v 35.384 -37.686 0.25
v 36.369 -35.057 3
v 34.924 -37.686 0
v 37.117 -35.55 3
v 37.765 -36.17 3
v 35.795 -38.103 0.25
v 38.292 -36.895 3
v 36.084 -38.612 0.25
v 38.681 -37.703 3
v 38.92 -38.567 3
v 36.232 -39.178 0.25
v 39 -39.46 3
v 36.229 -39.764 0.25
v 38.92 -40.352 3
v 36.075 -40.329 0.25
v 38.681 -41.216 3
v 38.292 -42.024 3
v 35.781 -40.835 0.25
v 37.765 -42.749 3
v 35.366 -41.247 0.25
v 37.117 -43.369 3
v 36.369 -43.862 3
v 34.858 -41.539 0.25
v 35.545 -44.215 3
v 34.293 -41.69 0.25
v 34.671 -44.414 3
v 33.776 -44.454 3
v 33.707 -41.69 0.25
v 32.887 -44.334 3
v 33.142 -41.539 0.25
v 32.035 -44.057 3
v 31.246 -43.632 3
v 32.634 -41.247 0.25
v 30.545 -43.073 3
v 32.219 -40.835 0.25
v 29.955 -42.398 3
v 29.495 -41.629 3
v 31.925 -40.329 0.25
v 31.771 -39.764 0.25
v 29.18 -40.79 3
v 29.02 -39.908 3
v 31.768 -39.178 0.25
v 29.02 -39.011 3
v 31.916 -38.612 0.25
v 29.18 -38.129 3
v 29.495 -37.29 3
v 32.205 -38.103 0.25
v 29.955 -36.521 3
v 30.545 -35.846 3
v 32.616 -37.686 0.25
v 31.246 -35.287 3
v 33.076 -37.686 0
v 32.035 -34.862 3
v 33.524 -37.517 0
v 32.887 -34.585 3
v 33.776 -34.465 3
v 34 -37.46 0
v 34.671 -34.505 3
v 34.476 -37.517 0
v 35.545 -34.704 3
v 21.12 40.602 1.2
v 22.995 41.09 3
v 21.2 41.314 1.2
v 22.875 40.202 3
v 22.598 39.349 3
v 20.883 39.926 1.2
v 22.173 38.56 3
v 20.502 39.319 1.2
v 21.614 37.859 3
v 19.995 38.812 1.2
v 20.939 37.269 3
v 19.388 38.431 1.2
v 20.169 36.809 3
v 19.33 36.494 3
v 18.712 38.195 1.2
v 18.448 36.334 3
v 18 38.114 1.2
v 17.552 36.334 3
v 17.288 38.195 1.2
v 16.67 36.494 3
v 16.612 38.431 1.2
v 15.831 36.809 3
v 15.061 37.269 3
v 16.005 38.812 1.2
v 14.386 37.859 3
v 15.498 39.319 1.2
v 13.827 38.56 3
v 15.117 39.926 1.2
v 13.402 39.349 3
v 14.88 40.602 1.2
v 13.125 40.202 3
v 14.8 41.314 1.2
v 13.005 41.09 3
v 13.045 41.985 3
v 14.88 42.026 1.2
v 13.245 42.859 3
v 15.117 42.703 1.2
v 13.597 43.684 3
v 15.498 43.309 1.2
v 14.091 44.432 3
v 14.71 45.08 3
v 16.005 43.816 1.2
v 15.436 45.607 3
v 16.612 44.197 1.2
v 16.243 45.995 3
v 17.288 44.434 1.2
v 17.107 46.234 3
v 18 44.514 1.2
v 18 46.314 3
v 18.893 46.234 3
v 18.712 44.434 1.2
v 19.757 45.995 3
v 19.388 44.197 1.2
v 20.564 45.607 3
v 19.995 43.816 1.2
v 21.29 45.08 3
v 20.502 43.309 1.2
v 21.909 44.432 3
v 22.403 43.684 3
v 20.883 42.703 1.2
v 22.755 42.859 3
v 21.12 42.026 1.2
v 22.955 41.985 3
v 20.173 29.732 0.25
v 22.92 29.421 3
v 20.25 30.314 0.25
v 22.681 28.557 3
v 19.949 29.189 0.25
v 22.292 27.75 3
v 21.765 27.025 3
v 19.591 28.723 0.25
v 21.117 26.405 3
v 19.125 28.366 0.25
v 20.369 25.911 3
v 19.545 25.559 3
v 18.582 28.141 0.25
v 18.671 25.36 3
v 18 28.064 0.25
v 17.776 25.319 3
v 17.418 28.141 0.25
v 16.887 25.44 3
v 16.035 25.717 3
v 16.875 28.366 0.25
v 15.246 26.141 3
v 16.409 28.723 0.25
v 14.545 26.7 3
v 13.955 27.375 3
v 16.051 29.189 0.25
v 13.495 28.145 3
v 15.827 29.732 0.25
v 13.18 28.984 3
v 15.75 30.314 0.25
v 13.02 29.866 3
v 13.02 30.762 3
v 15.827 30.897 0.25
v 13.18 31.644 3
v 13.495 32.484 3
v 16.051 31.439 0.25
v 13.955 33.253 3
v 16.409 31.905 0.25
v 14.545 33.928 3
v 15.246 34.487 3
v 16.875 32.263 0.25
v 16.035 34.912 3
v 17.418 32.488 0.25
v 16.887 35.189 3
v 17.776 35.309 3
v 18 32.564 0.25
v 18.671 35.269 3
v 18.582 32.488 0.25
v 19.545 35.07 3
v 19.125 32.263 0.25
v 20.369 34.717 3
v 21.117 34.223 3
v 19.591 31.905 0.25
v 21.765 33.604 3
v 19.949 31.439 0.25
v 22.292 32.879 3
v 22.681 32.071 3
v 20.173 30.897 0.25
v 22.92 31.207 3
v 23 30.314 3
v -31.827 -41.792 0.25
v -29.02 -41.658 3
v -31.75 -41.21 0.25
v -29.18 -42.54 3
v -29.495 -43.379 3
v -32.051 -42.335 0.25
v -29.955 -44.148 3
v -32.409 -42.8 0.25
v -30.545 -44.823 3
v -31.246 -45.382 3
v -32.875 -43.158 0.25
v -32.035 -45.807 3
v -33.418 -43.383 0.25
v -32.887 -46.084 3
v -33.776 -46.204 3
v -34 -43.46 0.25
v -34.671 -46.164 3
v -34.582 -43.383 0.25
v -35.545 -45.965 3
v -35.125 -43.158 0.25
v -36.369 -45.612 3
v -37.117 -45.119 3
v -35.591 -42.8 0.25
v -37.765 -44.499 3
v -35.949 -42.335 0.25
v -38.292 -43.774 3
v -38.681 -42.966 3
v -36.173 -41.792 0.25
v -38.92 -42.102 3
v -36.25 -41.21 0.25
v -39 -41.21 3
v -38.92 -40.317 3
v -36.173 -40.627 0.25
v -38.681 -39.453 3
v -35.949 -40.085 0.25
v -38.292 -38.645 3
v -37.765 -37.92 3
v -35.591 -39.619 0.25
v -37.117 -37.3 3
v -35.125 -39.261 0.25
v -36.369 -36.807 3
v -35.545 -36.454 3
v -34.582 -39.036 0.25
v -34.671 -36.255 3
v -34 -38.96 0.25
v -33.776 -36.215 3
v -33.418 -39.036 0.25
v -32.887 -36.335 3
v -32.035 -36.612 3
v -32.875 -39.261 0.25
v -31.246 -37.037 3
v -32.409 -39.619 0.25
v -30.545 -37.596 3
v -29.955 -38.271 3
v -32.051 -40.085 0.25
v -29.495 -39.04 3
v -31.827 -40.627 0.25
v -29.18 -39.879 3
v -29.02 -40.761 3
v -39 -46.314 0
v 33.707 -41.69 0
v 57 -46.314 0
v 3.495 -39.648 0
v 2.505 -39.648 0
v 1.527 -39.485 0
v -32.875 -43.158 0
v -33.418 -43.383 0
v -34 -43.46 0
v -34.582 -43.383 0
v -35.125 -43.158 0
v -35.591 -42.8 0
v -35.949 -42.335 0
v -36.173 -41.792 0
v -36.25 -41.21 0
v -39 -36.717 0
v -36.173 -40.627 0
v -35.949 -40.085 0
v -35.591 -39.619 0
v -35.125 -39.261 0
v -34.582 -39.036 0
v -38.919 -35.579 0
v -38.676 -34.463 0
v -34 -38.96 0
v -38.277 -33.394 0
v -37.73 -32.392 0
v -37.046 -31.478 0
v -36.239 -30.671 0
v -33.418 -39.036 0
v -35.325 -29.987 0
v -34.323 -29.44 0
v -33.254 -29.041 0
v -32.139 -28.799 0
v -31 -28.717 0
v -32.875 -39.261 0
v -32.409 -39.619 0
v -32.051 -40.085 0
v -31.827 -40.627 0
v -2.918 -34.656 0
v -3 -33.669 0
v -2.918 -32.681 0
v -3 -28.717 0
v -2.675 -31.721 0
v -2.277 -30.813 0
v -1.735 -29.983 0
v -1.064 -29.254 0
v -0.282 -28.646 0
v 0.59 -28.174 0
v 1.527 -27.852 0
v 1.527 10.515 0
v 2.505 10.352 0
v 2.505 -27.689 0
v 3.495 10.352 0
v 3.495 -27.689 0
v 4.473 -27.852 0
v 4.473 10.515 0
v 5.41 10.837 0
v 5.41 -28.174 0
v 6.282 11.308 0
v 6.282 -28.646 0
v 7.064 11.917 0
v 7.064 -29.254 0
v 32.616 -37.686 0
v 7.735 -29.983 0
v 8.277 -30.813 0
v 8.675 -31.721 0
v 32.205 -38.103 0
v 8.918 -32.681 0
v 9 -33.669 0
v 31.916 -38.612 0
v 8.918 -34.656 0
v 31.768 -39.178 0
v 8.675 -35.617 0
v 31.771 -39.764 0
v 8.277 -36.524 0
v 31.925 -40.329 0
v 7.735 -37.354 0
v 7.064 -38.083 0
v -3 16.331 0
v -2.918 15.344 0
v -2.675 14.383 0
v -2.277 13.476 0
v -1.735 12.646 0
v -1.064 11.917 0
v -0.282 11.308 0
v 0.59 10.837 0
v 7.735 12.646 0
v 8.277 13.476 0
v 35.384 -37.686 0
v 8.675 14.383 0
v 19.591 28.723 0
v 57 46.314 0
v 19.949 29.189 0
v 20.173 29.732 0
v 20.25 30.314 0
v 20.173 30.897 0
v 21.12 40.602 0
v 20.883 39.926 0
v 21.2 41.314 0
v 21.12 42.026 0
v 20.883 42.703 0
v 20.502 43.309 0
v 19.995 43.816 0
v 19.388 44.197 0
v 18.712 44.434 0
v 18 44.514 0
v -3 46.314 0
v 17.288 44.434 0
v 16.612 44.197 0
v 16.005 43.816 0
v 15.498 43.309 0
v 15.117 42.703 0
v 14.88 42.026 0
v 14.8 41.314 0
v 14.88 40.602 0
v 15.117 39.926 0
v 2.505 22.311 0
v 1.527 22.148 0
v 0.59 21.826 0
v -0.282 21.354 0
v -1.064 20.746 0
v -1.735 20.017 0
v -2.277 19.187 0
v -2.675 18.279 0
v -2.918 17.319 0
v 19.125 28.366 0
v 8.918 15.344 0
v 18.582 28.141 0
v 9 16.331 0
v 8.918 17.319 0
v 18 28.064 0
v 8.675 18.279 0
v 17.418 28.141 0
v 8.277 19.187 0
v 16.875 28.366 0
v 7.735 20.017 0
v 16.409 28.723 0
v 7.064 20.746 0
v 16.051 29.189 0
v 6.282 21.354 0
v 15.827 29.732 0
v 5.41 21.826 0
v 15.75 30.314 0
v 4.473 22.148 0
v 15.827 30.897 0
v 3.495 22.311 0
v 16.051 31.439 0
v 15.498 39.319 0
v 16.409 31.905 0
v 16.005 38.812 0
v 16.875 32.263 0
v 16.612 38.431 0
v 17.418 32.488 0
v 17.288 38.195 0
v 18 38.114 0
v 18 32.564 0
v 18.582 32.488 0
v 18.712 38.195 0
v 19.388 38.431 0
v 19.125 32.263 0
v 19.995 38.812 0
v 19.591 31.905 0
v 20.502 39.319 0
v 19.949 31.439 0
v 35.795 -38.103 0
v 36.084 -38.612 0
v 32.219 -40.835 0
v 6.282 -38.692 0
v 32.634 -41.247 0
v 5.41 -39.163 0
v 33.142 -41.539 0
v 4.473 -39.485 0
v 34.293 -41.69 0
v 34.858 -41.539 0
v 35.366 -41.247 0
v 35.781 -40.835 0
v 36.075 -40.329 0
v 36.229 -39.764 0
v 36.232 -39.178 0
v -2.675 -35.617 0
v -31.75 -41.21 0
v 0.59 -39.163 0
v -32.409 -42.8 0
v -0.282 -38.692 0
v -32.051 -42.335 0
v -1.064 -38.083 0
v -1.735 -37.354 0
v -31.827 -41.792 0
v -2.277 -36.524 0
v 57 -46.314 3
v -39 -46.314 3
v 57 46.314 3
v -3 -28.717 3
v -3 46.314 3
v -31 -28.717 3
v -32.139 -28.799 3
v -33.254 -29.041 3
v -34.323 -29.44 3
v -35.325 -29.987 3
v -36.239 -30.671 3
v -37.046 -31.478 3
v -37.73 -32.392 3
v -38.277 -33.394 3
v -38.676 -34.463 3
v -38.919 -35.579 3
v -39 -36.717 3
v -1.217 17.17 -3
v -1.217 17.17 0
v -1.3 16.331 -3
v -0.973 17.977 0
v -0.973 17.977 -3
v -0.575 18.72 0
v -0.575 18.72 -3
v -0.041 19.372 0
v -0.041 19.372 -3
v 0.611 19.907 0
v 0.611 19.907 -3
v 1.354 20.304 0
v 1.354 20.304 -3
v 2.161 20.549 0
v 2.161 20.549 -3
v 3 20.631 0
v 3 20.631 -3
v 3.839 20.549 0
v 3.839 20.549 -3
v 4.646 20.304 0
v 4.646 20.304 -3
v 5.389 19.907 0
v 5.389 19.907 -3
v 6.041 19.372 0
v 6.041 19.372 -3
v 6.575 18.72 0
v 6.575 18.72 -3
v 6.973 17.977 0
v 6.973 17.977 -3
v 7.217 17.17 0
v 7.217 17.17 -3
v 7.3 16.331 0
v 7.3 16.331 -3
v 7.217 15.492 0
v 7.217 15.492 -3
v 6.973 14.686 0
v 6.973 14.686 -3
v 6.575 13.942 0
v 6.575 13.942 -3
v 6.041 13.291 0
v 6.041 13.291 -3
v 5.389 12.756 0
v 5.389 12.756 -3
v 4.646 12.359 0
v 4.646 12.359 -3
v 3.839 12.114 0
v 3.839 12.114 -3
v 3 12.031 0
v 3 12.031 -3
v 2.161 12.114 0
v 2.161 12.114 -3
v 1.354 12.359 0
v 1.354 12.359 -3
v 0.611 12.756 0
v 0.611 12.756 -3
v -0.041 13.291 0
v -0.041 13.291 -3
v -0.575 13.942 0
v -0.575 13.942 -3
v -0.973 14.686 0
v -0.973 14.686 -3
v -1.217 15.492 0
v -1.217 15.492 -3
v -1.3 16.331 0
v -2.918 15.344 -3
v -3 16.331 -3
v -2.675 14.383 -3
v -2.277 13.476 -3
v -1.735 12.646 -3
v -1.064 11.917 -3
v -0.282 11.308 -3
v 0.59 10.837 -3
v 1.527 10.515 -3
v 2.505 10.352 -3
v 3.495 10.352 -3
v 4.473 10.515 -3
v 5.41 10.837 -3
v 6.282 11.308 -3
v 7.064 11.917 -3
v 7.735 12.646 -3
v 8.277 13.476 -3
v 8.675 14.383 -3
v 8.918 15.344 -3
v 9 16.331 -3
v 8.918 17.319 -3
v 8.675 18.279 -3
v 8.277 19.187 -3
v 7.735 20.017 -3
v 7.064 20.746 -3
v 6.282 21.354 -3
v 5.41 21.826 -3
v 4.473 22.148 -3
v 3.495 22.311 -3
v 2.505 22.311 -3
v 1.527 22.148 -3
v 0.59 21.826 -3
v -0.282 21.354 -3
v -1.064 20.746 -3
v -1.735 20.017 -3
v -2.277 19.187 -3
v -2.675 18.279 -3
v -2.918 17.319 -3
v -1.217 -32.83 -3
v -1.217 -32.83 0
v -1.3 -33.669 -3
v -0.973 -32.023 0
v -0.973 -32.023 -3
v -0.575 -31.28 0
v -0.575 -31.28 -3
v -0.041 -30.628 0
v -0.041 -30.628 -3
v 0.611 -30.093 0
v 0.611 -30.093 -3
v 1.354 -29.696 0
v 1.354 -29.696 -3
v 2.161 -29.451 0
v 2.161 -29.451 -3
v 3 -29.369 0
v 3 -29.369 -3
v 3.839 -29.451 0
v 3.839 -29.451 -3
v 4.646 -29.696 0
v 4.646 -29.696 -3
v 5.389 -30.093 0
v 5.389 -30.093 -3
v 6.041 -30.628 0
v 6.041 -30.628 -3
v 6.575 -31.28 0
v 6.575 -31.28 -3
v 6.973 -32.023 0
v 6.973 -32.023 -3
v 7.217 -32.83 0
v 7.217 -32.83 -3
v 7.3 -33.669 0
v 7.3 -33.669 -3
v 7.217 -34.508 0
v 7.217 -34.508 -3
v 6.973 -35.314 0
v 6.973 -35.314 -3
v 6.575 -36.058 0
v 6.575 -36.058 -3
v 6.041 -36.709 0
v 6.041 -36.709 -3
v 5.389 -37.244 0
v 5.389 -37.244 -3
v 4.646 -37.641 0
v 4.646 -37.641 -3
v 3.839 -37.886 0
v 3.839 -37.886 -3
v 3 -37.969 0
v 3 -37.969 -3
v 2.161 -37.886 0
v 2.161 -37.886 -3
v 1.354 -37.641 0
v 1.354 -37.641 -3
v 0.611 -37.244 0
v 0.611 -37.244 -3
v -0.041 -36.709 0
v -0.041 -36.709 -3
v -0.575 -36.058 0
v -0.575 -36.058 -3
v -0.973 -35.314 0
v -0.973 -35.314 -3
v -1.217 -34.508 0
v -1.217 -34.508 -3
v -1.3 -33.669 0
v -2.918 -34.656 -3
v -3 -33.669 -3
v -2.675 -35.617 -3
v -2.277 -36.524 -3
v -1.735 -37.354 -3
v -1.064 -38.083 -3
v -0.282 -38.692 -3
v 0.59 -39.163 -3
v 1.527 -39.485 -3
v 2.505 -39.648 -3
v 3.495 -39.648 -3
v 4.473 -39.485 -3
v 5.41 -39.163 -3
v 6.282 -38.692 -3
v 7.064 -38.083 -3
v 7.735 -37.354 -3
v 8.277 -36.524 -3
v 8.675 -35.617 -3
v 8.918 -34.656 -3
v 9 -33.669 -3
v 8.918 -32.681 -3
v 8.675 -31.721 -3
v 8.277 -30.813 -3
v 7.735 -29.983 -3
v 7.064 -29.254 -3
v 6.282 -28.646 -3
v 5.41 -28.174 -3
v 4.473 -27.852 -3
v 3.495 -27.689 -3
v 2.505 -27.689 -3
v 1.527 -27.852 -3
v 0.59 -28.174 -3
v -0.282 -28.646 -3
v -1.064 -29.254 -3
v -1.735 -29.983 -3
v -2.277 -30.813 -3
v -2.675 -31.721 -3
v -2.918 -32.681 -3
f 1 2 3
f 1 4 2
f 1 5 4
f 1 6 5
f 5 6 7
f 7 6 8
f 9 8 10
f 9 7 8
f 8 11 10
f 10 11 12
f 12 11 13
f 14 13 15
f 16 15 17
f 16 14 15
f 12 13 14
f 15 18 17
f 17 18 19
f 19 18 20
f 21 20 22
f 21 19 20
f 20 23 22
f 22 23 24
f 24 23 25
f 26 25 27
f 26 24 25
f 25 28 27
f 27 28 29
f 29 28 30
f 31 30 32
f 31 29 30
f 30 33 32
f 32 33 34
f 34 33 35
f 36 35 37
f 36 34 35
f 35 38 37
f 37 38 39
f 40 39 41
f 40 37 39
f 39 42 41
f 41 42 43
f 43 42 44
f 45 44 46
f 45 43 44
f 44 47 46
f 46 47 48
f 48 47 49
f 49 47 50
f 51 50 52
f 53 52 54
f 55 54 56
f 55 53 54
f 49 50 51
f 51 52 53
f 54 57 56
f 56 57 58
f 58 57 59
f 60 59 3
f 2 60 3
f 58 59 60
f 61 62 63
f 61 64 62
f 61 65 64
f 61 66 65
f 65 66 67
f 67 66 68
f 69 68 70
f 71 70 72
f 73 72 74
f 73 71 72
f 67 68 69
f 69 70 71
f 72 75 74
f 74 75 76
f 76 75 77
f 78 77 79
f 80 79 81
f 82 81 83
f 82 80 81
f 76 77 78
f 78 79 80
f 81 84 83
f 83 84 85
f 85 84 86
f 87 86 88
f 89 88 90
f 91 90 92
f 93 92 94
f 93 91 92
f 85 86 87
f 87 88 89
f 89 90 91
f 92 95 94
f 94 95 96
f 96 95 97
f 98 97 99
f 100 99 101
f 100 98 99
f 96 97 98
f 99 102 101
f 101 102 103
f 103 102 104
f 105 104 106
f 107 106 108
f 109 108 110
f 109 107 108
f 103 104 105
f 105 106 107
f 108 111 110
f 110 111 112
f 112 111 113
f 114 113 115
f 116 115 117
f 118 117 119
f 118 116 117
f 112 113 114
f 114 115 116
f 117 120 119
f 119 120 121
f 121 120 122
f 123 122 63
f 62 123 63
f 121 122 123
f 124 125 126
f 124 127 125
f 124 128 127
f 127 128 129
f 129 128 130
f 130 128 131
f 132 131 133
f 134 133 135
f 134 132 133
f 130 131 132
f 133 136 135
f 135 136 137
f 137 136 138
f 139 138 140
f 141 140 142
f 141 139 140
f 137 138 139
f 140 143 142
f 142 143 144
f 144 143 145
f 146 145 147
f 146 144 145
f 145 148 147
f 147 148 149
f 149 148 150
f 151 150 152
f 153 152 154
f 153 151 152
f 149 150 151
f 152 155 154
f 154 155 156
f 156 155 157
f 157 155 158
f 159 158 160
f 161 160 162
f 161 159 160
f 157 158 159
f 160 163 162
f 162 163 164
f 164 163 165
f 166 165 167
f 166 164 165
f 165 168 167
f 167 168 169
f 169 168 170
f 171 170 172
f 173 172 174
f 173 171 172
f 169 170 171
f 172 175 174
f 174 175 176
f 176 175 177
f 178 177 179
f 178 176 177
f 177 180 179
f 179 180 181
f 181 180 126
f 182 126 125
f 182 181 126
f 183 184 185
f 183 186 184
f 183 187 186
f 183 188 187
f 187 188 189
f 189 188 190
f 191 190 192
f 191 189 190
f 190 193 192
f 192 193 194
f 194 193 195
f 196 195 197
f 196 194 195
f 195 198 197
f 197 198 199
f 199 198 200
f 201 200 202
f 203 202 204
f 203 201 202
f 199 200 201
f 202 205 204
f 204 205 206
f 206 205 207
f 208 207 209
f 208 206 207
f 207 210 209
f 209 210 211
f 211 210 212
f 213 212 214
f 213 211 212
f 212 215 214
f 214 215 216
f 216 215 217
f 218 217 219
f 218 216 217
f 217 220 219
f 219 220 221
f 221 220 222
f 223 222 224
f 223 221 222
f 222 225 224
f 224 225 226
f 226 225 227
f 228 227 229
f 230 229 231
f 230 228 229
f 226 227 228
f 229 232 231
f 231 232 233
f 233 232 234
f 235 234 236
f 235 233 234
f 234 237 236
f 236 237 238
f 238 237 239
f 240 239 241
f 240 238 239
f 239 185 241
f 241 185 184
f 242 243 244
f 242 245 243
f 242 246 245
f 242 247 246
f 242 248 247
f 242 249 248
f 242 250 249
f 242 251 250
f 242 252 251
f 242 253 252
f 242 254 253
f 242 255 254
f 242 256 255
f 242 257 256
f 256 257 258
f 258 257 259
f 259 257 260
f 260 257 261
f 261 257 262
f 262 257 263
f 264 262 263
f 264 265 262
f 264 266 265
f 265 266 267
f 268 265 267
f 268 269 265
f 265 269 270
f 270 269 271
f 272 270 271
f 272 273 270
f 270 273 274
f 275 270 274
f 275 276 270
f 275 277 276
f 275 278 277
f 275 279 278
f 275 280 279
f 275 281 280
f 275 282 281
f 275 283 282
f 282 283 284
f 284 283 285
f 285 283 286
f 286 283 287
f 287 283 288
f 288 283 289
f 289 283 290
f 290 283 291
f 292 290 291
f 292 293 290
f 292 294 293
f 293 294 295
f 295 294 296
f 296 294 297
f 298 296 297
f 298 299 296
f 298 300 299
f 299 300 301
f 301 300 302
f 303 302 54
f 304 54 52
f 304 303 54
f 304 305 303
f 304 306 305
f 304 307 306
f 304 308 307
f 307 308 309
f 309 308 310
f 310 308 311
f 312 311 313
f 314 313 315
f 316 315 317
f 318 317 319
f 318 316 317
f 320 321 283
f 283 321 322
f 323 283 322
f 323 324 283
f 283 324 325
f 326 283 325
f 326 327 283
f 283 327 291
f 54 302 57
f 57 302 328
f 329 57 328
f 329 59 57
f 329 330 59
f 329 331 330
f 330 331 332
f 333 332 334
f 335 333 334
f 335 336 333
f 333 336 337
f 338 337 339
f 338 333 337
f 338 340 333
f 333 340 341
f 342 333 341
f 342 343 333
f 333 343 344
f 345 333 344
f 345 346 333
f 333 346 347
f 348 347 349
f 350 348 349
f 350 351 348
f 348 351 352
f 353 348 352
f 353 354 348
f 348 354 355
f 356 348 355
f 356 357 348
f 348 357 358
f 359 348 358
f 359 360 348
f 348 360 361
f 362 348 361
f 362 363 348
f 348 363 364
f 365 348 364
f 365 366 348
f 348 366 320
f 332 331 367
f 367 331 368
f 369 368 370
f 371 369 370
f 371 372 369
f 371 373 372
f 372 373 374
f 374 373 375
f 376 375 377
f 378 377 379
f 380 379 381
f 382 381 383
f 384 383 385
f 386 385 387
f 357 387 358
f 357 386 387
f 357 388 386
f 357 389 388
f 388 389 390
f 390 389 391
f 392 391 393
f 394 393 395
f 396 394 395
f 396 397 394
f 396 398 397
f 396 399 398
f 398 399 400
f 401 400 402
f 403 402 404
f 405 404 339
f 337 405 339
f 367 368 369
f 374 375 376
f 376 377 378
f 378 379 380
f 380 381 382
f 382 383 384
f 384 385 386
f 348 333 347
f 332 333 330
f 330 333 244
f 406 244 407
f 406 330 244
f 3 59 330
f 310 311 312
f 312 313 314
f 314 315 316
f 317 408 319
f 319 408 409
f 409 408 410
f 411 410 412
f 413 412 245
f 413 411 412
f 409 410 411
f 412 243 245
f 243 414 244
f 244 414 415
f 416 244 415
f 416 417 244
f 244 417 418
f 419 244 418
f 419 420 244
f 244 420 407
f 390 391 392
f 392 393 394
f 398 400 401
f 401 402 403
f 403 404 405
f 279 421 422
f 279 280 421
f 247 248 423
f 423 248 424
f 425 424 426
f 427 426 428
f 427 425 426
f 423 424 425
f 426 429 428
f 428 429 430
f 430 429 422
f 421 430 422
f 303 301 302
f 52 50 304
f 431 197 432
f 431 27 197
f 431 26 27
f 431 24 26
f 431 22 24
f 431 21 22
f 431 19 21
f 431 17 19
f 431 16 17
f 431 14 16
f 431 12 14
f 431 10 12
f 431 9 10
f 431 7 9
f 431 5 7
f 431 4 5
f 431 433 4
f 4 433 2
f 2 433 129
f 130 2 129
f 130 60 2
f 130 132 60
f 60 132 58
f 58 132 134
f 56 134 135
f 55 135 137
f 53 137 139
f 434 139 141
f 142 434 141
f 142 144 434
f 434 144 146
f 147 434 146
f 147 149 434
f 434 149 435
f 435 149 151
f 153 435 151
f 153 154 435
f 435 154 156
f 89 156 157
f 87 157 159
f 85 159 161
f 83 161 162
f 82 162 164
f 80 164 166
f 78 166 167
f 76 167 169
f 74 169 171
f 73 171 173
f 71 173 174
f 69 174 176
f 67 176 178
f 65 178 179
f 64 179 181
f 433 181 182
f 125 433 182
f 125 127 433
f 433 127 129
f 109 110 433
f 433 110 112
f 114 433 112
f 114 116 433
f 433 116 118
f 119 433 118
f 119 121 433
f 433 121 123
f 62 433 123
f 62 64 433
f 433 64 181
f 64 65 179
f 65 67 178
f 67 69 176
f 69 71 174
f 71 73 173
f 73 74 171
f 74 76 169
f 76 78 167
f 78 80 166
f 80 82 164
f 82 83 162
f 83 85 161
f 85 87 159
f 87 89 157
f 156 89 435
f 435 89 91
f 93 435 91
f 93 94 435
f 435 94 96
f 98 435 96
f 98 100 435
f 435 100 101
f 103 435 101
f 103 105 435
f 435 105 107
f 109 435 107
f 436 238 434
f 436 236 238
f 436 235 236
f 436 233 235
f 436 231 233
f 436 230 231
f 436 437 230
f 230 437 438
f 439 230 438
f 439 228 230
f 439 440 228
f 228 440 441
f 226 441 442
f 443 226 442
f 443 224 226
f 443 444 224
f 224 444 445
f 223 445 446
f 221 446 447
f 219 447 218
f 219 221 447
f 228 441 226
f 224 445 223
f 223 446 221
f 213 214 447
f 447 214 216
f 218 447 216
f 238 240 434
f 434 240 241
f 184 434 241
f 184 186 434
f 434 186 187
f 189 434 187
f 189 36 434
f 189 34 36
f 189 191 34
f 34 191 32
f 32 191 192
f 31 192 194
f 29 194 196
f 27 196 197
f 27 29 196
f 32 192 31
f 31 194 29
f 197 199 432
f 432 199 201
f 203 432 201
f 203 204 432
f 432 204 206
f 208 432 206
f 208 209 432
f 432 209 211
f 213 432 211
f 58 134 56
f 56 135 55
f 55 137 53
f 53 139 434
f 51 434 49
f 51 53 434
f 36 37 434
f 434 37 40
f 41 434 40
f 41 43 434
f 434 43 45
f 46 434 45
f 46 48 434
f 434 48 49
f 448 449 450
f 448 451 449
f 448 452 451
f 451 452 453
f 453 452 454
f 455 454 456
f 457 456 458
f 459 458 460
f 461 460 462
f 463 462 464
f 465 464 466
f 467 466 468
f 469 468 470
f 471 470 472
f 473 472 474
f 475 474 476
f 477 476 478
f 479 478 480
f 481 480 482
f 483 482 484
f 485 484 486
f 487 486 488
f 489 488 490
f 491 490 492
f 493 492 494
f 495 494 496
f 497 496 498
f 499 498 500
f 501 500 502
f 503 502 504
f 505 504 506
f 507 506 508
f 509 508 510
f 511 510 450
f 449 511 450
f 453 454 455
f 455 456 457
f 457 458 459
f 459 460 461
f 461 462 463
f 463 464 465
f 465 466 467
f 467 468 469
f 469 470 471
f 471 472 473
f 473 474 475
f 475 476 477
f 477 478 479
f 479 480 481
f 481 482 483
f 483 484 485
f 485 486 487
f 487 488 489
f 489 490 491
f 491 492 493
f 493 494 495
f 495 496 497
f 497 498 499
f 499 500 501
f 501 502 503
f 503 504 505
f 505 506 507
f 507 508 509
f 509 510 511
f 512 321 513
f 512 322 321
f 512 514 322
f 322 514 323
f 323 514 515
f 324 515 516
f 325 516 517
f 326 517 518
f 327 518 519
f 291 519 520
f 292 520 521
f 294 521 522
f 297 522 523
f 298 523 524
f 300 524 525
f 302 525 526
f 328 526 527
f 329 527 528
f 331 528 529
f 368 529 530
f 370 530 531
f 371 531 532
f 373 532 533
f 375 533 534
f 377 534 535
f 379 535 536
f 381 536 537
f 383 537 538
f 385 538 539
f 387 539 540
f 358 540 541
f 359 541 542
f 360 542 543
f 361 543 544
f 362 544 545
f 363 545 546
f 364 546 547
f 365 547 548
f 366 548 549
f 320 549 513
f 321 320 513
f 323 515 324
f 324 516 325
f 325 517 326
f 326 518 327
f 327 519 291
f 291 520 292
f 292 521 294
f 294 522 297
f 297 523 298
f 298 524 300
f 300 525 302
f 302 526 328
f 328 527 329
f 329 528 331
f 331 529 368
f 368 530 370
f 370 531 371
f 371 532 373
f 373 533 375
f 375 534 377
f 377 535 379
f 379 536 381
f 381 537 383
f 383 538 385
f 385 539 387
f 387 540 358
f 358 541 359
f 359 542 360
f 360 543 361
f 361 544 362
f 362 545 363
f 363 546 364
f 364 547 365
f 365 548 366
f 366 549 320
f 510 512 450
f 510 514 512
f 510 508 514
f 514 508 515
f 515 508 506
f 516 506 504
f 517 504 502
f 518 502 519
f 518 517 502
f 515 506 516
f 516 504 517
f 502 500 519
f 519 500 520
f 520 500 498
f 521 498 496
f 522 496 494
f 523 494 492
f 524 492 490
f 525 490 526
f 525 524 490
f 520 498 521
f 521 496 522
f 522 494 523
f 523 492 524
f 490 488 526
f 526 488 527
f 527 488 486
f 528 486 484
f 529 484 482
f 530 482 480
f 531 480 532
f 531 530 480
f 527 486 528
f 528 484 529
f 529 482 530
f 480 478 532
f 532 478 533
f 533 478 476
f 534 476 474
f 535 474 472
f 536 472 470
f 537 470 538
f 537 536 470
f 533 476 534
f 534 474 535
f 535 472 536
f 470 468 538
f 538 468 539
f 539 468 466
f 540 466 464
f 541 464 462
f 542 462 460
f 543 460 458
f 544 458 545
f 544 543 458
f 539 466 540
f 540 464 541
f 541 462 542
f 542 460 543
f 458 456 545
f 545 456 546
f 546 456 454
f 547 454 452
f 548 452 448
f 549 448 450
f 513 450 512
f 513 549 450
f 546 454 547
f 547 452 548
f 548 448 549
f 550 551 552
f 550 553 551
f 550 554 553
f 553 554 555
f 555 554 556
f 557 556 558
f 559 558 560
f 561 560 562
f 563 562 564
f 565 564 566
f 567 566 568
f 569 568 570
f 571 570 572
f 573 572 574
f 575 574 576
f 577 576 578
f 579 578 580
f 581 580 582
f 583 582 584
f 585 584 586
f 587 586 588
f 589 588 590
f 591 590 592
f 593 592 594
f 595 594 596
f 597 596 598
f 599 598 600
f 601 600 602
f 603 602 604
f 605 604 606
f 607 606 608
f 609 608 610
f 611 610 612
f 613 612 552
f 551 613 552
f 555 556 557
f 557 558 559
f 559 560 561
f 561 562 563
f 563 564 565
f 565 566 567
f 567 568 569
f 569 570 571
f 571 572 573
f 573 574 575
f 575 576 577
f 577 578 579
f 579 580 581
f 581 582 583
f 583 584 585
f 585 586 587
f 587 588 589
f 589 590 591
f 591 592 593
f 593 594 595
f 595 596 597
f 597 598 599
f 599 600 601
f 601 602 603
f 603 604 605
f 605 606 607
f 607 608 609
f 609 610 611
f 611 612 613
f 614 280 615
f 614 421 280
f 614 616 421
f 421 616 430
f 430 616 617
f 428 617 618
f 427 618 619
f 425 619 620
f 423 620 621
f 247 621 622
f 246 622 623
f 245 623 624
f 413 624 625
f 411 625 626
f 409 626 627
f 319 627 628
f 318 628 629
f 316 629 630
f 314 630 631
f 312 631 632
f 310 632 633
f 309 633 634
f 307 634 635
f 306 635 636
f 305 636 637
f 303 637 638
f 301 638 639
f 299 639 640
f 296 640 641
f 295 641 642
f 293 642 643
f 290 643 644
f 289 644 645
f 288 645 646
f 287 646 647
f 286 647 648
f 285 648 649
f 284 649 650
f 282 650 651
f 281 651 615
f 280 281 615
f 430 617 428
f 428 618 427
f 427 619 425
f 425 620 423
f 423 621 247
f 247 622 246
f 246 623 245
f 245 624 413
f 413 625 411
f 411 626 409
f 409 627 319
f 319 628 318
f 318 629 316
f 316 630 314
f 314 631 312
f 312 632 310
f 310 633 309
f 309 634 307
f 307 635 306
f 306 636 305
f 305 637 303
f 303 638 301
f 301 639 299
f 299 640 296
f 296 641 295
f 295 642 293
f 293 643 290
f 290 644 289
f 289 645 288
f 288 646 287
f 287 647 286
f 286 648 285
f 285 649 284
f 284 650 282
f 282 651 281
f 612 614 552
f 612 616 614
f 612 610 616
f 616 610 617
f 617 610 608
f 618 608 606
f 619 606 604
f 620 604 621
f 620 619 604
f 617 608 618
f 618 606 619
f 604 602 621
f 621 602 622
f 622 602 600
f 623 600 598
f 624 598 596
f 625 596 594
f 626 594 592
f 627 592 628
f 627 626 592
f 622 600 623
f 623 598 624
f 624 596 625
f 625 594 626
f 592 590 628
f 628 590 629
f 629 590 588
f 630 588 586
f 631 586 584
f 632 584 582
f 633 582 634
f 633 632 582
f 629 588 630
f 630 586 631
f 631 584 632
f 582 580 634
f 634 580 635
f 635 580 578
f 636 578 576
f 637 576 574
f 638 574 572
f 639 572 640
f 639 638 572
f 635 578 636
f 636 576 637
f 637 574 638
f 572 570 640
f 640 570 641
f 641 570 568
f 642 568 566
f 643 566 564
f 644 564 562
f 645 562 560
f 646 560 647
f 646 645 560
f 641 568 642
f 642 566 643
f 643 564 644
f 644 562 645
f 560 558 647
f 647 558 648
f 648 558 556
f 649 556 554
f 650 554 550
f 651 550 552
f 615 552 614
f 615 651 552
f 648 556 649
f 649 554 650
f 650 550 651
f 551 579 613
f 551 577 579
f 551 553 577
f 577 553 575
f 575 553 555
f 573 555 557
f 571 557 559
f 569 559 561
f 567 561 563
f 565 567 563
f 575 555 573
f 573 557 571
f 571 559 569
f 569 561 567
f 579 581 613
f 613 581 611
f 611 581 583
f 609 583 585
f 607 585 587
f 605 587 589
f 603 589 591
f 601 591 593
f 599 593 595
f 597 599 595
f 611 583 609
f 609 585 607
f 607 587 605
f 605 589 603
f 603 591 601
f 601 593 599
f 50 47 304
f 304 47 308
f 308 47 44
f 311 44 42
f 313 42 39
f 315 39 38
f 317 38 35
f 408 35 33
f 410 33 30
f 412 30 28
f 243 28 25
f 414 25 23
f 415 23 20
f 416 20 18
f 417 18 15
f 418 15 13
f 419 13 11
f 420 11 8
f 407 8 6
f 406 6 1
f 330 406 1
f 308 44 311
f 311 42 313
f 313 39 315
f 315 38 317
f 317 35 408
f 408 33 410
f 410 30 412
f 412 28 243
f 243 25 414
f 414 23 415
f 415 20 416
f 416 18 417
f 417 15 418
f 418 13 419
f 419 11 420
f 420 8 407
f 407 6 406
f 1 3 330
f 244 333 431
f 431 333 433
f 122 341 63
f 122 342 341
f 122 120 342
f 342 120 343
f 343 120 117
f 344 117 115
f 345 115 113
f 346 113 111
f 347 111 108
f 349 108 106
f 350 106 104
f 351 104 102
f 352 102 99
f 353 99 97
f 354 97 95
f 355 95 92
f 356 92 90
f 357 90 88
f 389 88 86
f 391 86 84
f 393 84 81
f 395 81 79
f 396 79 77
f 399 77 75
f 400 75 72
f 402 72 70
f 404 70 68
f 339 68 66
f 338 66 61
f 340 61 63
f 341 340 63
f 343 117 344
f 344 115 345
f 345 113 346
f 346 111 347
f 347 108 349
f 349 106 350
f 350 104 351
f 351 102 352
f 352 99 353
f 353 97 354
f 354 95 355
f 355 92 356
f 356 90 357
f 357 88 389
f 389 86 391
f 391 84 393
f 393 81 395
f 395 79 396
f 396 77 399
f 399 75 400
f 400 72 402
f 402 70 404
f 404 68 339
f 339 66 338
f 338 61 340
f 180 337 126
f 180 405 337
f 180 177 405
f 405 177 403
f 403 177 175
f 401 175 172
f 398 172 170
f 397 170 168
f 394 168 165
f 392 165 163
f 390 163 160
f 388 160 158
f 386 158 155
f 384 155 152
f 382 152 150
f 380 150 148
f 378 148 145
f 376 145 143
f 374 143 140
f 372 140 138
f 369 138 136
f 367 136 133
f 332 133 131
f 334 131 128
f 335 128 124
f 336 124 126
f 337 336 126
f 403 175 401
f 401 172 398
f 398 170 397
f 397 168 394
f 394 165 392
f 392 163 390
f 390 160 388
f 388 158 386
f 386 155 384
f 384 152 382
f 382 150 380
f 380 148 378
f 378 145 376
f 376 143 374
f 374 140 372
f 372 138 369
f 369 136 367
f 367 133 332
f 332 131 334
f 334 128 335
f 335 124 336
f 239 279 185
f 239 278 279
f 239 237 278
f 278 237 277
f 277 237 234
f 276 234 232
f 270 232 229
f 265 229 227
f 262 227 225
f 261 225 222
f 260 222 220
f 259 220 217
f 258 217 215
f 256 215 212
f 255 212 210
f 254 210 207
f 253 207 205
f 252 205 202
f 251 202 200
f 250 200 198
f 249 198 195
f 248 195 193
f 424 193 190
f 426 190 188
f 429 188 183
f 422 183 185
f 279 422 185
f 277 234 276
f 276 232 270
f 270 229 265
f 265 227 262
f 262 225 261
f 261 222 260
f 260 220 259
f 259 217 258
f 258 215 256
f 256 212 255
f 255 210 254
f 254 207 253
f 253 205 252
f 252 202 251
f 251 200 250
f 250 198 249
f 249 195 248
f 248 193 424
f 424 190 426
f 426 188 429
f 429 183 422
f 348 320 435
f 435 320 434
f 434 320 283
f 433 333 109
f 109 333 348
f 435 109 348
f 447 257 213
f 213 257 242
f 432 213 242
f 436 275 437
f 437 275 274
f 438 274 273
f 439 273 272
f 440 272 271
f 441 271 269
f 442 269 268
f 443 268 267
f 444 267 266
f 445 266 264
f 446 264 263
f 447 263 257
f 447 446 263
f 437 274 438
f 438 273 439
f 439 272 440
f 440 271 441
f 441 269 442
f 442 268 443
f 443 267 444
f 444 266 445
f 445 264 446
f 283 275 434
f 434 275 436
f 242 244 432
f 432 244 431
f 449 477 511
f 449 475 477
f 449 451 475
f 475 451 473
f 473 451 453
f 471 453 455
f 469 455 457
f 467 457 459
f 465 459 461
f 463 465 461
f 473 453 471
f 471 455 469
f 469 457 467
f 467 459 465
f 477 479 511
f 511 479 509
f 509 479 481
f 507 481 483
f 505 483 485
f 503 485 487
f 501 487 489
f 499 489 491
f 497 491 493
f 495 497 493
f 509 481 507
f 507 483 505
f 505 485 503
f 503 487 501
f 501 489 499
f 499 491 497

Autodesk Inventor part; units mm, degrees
ref_plane "YZ Plane" through (0, 0, 0) normal (1, 0, 0) x (0, 1, 0)
ref_plane "XZ Plane" through (0, 0, 0) normal (0, 1, 0) x (-1, 0, 0)
ref_plane "XY Plane" through (0, 0, 0) normal (0, 0, 1) x (1, 0, 0)
ref_plane "Arbeitsebene1" through (0, 0, 0) normal (0, 0, 1) x (1, 0, 0)
sketch "Skizze1" plane through (0, 0, 0) normal (0, 0, 1) x (1, 0, 0)
  circle A0 centre (-34, -41.2095) radius 2.25 projected
  line L0 (-29.75, -46.3143) -> (-39, -46.3143) projected
  line L1 (-29.75, -28.7171) -> (-29.75, -46.3143) projected
  line L2 (-31, -28.7171) -> (-29.75, -28.7171) projected
  arc A1 (-31, -28.7171) -> (-39, -36.7171) centre (-31, -36.7171) ccw projected
  line L3 (-39, -46.3143) -> (-39, -36.7171) projected
  line L4 (22, 46.3143) -> (22, 27.3143) projected
  line L5 (14, 46.3143) -> (22, 46.3143) projected
  line L6 (14, 27.3143) -> (14, 46.3143) projected
  line L7 (22, 27.3143) -> (14, 27.3143) projected
  circle A2 centre (18, 30.3143) radius 2.25 projected
  circle A3 centre (18, 41.3143) radius 3.2 projected
  line L8 (39, -36.6857) -> (39, -43.7095) projected
  arc A4 (39, -36.6857) -> (31, -28.6857) centre (31, -36.6857) ccw projected
  line L9 (30, -28.6857) -> (31, -28.6857) projected
  arc A5 (22, -20.6857) -> (30, -28.6857) centre (30, -20.6857) ccw projected
  line L10 (22, -18.1808) -> (22, -20.6857) projected
  line L11 (20, -18.1808) -> (22, -18.1808) projected
  line L12 (20, -43.7095) -> (20, -18.1808) projected
  line L13 (39, -43.7095) -> (20, -43.7095) projected
  circle A6 centre (34, -39.4595) radius 2.25 projected
  circle A7 centre (34, -58.6857) radius 4.25 construction
  circle A8 centre (-34, -58.6857) radius 4.25 construction
  circle A9 centre (18, 41.3143) radius 3.2 construction
  circle A10 centre (34, -39.4595) radius 2.25 construction
  circle A11 centre (-34, -41.2095) radius 2.25 construction
  circle A12 centre (18, 30.3143) radius 2.25 construction
  circle A13 centre (18, -14.7167) radius 2 construction
  circle A14 centre (18, 8.8143) radius 2 construction
  circle A15 centre (3.8024, -65.6857) radius 18.5 construction
  circle A16 centre (3, -8.6688) radius 3.05 construction
  arc A17 (-31, -28.7171) -> (-39, -36.7171) centre (-31, -36.7171) ccw construction
  line L14 (-11, -28.7171) -> (-31, -28.7171) construction
  arc A18 (-11, -28.7171) -> (-3, -20.7171) centre (-11, -20.7171) ccw construction
  line L15 (-3, 17.3143) -> (-3, -20.7171) construction
  arc A19 (5, 25.3143) -> (-3, 17.3143) centre (5, 17.3143) ccw construction
  line L16 (14, 25.3143) -> (5, 25.3143) construction
  line L17 (14, 46.3143) -> (14, 25.3143) construction
  line L18 (22, 46.3143) -> (14, 46.3143) construction
  line L19 (22, -20.6857) -> (22, 46.3143) construction
  arc A20 (22, -20.6857) -> (30, -28.6857) centre (30, -20.6857) ccw construction
  line L20 (31, -28.6857) -> (30, -28.6857) construction
  arc A21 (39, -36.6857) -> (31, -28.6857) centre (31, -36.6857) ccw construction
  line L21 (39, -79.0756) -> (39, -36.6857) construction
  arc A22 (31, -87.0756) -> (39, -79.0756) centre (31, -79.0756) ccw construction
  line L22 (-31, -87.0756) -> (31, -87.0756) construction
  arc A23 (-39, -79.0756) -> (-31, -87.0756) centre (-31, -79.0756) ccw construction
  line L23 (-39, -36.7171) -> (-39, -79.0756) construction
  circle A24 centre (3, 16.3312) radius 4 projected
  circle A25 centre (3, -33.6688) radius 4 projected
  circle A26 centre (3, 16.3312) radius 7.6 projected
  circle A27 centre (3, 16.3312) radius 4 projected
  circle A28 centre (3, 16.3312) radius 6 projected
  circle A29 centre (3, 16.3312) radius 6 projected
  line L24 (-39, -46.3143) -> (39, -46.3143)
  line L25 (39, -46.3143) -> (39, -43.7095)
  line L26 (-29.75, -28.7171) -> (-3, -28.7171)
  line L27 (-3, -28.7171) -> (-3, 46.3143)
  line L28 (-3, 46.3143) -> (22, 46.3143)
  line L29 (22, 46.3143) -> (22, -18.1808)
  line L30 (22, 46.3143) -> (57, 46.3143)
  line L31 (57, 46.3143) -> (57, -37.6857)
  line L32 (57, -37.6857) -> (22, -37.6857)
  line L33 (22, -37.6857) -> (22, 46.3143)
  line L34 (39, -46.3143) -> (57, -46.3143)
  line L35 (57, -46.3143) -> (57, -37.6857)
  line L36 (57, -37.6857) -> (39, -37.6857)
  line L37 (39, -37.6857) -> (39, -46.3143)
  point P0 (0, 0)
  dimension "d10" = 84
  dimension "d11" = 60
extrude "Extrusion1" add sketch "Skizze1" along normal blind 3 contours L0 L3 A1 L2 L1 | L1 L26 L27 A26 L28 L6 L7 L29 L11 L12 L13 L25 L24 | L25 L8 L32 L35 L34 | L13 L12 L11 L10 L33 L32 A6 L8 | A28 | L27 A26 | L32 A6 L33 A5 L9 A4 L8 | L8 A4 L9 A5 L10 L29 L4 L30 L31 L32 | L32 A6 | L4 L7 L6 L5 | A24 | A25 picked at (9.931, 15.2305) picked at (34.3207, -37.599)
sketch "Skizze2" plane through (0, 0, 0) normal (0, 0, -1) x (-1, 0, 0)
  circle A0 centre (-3, 16.3312) radius 4 projected
  circle A1 centre (-3, -33.6688) radius 4 projected
  circle A2 centre (-3, 16.3312) radius 4.3
  circle A3 centre (-3, -33.6688) radius 4.3
  circle A4 centre (-3, 16.3312) radius 6
  circle A5 centre (-3, -33.6688) radius 6
  point P0 (0, 0)
  dimension "d2" = 0.3
  dimension "d3" = 0.3
  dimension "d4" = 1.7
  dimension "d5" = 1.7
extrude "Extrusion2" add sketch "Skizze2" along normal blind 3 contours A4 | A5
sketch "Skizze3" plane through (0, 0, 3) normal (0, 0, 1) x (1, 0, 0)
  circle A0 centre (18, 41.3143) radius 3.2 projected
  circle A1 centre (18, 30.3143) radius 2.25 projected
  arc A2 (32.6157, -37.6857) -> (35.3843, -37.6857) centre (34, -39.4595) ccw projected
  circle A3 centre (-34, -41.2095) radius 2.25 projected
  point P0 (0, 0)
hole "Bohrung1" at (18, 41.3143, 3) at (18, 30.3143, 3) at (34, -39.4595, 3) at (-34, -41.2095, 3) direction (0, 0, -1) diameter 4 end through all countersink diameter 10 countersink angle 90
properties part number "11_Smartphone_Platform"
